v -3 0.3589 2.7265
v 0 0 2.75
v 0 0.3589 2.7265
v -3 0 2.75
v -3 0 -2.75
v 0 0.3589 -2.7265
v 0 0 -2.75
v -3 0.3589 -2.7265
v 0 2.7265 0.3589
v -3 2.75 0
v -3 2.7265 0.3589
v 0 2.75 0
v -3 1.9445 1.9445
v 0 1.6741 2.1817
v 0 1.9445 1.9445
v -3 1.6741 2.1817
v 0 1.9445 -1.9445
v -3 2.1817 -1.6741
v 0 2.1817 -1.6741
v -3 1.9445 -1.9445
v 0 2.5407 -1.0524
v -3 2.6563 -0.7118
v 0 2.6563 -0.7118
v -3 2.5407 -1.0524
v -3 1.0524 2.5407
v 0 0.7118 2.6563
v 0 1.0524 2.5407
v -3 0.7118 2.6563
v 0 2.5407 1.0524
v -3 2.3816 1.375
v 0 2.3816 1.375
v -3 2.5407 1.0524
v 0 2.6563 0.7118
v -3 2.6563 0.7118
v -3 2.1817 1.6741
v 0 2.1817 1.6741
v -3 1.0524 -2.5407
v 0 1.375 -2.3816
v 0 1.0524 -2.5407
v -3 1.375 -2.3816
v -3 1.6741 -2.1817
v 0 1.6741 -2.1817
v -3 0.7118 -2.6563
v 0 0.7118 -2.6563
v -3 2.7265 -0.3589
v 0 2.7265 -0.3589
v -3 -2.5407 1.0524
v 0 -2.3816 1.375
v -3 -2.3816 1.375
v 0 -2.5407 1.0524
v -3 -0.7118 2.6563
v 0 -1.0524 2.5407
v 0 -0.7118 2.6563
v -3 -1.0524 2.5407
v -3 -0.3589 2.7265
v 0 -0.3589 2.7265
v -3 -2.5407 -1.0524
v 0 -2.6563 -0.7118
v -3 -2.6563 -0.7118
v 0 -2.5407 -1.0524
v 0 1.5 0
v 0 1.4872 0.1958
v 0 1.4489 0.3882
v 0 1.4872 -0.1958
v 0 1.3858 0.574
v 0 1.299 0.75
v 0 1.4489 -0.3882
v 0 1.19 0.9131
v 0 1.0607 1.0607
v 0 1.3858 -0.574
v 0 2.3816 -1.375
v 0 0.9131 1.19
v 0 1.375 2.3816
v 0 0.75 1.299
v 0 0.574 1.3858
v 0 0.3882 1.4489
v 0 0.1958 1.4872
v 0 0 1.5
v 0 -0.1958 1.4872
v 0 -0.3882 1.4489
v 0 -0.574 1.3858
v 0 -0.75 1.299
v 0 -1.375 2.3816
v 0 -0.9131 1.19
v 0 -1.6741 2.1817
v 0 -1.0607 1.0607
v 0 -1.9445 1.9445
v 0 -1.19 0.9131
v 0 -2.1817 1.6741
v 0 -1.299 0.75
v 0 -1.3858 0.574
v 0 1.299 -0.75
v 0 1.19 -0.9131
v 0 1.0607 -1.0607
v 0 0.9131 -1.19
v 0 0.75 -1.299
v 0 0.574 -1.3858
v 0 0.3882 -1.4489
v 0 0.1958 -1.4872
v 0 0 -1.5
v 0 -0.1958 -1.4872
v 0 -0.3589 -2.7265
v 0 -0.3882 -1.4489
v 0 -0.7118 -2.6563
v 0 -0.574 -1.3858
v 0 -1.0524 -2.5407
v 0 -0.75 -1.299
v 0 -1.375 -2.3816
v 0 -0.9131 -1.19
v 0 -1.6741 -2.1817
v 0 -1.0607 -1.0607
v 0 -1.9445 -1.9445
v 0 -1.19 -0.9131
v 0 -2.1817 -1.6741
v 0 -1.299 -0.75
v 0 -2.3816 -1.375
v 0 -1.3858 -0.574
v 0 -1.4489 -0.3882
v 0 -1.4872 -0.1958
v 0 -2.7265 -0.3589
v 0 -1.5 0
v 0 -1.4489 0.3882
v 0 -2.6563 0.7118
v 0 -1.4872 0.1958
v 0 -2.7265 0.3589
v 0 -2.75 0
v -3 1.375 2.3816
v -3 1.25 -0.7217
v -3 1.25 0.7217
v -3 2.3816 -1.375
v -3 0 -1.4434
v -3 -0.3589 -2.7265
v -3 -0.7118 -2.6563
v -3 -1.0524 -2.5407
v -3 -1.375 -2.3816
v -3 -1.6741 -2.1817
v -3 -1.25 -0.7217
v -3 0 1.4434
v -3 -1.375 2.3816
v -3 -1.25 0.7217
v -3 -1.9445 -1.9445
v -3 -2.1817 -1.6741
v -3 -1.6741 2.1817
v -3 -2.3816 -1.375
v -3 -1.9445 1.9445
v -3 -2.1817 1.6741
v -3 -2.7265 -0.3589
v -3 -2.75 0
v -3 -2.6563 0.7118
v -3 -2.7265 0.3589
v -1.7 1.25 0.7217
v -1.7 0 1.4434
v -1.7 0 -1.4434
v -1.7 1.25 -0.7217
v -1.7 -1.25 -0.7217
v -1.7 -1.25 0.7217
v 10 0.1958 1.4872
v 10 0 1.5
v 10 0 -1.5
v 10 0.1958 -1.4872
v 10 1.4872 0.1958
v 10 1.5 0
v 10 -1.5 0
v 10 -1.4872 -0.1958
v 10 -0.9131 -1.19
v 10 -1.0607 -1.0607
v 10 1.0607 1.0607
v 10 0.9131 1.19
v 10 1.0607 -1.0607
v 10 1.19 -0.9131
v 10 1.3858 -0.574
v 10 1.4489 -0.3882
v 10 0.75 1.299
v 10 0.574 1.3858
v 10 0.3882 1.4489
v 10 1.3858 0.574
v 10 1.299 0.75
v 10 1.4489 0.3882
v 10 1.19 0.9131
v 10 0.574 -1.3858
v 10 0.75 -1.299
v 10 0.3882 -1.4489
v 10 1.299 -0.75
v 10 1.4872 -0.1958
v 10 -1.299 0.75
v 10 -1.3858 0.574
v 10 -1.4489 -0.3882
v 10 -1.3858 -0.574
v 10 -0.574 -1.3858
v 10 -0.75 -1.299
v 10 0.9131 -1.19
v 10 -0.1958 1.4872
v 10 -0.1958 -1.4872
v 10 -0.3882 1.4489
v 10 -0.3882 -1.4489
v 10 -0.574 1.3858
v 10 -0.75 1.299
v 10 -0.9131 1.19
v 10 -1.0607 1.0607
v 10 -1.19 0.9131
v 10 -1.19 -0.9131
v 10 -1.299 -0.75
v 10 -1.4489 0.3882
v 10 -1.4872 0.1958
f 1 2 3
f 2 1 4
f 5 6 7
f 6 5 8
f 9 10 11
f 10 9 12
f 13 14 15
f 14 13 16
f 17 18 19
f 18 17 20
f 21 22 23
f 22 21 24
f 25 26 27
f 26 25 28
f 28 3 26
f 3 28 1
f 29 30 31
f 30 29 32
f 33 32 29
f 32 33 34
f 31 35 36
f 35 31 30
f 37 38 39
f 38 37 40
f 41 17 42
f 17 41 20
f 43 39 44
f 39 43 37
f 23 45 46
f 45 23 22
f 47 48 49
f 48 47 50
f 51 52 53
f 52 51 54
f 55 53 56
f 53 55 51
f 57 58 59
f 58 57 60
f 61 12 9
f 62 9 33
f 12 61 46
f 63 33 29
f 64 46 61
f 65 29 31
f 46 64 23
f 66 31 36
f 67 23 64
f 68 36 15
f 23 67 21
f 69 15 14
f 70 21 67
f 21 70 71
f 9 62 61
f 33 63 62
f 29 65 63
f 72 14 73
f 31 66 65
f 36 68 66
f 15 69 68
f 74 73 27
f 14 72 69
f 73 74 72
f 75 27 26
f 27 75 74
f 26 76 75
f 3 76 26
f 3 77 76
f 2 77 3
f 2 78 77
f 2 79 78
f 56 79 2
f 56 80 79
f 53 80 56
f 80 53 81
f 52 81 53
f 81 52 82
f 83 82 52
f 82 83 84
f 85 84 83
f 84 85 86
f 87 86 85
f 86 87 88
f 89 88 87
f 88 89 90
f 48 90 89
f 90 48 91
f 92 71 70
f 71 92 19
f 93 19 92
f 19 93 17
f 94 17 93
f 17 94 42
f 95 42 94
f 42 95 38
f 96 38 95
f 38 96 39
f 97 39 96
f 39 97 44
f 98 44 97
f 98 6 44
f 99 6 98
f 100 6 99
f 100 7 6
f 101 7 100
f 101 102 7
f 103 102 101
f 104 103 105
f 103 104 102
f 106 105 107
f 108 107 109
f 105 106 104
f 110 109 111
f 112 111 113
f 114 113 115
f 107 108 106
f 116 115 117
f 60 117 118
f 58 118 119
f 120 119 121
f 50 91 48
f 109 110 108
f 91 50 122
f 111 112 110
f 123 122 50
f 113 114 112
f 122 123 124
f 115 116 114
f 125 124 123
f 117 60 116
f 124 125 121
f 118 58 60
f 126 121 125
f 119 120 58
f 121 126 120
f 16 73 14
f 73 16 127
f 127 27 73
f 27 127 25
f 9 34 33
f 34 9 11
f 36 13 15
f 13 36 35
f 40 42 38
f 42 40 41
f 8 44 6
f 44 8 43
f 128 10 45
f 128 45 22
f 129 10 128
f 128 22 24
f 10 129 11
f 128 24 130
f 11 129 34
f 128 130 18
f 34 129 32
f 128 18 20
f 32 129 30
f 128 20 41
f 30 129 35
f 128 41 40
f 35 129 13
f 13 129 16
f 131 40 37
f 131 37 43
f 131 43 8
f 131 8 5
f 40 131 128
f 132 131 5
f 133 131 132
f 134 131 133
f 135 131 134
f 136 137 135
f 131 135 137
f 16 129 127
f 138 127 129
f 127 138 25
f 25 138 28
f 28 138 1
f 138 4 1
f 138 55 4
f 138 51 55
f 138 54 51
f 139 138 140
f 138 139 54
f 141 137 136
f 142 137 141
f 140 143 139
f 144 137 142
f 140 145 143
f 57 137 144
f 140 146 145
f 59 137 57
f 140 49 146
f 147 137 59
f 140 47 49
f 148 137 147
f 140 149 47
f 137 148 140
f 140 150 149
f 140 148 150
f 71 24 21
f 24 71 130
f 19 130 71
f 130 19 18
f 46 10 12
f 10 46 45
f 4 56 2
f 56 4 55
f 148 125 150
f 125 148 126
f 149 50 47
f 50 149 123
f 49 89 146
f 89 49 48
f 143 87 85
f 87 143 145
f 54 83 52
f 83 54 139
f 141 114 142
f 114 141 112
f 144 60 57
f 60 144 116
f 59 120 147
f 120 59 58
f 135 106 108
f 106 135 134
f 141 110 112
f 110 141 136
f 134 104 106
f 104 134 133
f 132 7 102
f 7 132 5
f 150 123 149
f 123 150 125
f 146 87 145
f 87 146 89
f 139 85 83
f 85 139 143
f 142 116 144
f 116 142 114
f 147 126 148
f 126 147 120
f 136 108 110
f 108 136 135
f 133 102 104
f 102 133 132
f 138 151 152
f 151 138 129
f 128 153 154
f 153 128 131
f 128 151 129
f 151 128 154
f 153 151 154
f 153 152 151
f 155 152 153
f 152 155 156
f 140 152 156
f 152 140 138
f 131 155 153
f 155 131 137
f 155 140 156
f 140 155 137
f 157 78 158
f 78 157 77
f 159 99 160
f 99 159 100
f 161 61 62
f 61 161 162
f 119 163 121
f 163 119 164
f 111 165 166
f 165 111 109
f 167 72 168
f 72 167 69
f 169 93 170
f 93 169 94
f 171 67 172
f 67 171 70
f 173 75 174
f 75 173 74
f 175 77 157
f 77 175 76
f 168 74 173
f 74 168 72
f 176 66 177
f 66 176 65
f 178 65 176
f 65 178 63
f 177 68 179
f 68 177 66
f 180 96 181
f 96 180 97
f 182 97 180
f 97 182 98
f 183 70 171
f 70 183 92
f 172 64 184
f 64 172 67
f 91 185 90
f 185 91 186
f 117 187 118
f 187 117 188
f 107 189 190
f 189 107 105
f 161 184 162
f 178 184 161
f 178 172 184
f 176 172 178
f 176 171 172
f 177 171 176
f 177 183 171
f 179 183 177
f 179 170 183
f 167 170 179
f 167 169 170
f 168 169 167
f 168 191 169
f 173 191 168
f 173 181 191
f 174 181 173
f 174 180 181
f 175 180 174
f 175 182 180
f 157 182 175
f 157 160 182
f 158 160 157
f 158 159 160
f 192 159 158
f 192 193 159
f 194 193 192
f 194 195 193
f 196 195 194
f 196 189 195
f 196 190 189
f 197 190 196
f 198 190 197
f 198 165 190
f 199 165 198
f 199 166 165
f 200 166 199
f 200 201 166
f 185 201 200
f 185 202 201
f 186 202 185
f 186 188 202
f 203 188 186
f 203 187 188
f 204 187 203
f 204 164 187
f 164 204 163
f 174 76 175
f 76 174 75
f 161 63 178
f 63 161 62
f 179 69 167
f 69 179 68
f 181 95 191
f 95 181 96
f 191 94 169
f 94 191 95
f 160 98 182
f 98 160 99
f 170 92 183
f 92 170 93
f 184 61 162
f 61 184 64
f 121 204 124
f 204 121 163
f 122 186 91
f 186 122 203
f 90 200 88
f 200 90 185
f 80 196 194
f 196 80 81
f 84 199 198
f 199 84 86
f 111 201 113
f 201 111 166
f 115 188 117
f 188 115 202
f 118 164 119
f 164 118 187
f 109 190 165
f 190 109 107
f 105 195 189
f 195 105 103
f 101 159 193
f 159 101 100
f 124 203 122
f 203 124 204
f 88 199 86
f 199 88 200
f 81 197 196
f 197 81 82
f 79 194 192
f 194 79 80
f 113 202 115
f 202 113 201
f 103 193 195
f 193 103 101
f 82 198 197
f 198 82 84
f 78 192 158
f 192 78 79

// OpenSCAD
// file: ../../../lib/nutsnbolts/data-access.scad
// Norm Nuts and Bolts - a OpenSCAD library
// Copyright (C) 2012  Johannes Kneer

// This program is free software: you can redistribute it and/or modify
// it under the terms of the GNU General Public License as published by
// the Free Software Foundation, either version 3 of the License, or
// (at your option) any later version.

// This program is distributed in the hope that it will be useful,
// but WITHOUT ANY WARRANTY; without even the implied warranty of
// MERCHANTABILITY or FITNESS FOR A PARTICULAR PURPOSE.  See the
// GNU General Public License for more details.

// You should have received a copy of the GNU General Public License
// along with this program.  If not, see <http://www.gnu.org/licenses/>.


// DATABASE ACCESS FUNCTIONS AND CONSTANTS



// == CONSTANTS ==

// screw table access keys
_NB_S_DESC            = 0;
_NB_S_FAMKEY			    = 1;
_NB_S_LENGTH          = 2;
_NB_S_NOTHREAD_LENGTH = 3;

_NB_F_DESC			      = 0;
_NB_F_OUTER_DIA       = 1;
_NB_F_INNER_DIA       = 2;
_NB_F_LEAD            = 3;
_NB_F_KEY             = 4;
_NB_F_KEY_DEPTH       = 5;
_NB_F_HEAD_HEIGHT     = 6;
_NB_F_HEAD_DIA        = 7;
_NB_F_NUT_KEY         = 8;
_NB_F_NUT_HEIGHT      = 9;
_NB_F_PITCH_FINE      = 10;
_NB_F_PITCH_MEDIUM    = 11;
_NB_F_PITCH_COARSE    = 12;


// == FUNCTIONS ==

// _get_screw("descriptor")   with descriptor = M8x25
//   find the line for a general object in the data matrix

function _get_screw(n) = data_screw[search([n], data_screw)[0]];
function _get_screw_fam(n) = data_screw_fam[search([_get_screw(n)[_NB_S_FAMKEY]], data_screw_fam)[0]];

function _get_fam(n) = data_screw_fam[search([n], data_screw_fam)[0]];


// _get_XXXXX("descriptor") functions
// find a single property in the database

function _get_desc(n)        = _get_screw(n)[_NB_S_DESC];
function _get_famkey(n)         = _get_screw(n)[_NB_S_FAMKEY];
function _get_length(n)      = _get_screw(n)[_NB_S_LENGTH];
function _get_nt_length(n)   = _get_screw(n)[_NB_S_NOTHREAD_LENGTH];

function _get_outer_dia(n)   = _get_screw_fam(n)[_NB_F_OUTER_DIA];
function _get_inner_dia(n)   = _get_screw_fam(n)[_NB_F_INNER_DIA];
function _get_lead(n)        = _get_screw_fam(n)[_NB_F_LEAD];
function _get_head_height(n) = _get_screw_fam(n)[_NB_F_HEAD_HEIGHT];
function _get_head_dia(n)    = _get_screw_fam(n)[_NB_F_HEAD_DIA];
function _get_nut_key(n)     = _get_screw_fam(n)[_NB_F_NUT_KEY];
function _get_nut_height(n)  = _get_screw_fam(n)[_NB_F_NUT_HEIGHT];
function _get_fine_pitch(n)  = _get_screw_fam(n)[_NB_F_PITCH_FINE];
function _get_medium_pitch(n)  = _get_screw_fam(n)[_NB_F_PITCH_MEDIUM];
function _get_coarse_pitch(n)  = _get_screw_fam(n)[_NB_F_PITCH_COARSE];
// main file
/**********************************************************************************************************************
 **
 ** parts/vitamins/screw_M3x10.scad
 **
 ** This file renders a screw of the dimensions specified by the file name.
 **
 **********************************************************************************************************************/

include <../../../lib/nutsnbolts/cyl_head_bolt.scad>;

$fn = 48;
rotate([0, -90, 0])
	screw("M3x10"); 
